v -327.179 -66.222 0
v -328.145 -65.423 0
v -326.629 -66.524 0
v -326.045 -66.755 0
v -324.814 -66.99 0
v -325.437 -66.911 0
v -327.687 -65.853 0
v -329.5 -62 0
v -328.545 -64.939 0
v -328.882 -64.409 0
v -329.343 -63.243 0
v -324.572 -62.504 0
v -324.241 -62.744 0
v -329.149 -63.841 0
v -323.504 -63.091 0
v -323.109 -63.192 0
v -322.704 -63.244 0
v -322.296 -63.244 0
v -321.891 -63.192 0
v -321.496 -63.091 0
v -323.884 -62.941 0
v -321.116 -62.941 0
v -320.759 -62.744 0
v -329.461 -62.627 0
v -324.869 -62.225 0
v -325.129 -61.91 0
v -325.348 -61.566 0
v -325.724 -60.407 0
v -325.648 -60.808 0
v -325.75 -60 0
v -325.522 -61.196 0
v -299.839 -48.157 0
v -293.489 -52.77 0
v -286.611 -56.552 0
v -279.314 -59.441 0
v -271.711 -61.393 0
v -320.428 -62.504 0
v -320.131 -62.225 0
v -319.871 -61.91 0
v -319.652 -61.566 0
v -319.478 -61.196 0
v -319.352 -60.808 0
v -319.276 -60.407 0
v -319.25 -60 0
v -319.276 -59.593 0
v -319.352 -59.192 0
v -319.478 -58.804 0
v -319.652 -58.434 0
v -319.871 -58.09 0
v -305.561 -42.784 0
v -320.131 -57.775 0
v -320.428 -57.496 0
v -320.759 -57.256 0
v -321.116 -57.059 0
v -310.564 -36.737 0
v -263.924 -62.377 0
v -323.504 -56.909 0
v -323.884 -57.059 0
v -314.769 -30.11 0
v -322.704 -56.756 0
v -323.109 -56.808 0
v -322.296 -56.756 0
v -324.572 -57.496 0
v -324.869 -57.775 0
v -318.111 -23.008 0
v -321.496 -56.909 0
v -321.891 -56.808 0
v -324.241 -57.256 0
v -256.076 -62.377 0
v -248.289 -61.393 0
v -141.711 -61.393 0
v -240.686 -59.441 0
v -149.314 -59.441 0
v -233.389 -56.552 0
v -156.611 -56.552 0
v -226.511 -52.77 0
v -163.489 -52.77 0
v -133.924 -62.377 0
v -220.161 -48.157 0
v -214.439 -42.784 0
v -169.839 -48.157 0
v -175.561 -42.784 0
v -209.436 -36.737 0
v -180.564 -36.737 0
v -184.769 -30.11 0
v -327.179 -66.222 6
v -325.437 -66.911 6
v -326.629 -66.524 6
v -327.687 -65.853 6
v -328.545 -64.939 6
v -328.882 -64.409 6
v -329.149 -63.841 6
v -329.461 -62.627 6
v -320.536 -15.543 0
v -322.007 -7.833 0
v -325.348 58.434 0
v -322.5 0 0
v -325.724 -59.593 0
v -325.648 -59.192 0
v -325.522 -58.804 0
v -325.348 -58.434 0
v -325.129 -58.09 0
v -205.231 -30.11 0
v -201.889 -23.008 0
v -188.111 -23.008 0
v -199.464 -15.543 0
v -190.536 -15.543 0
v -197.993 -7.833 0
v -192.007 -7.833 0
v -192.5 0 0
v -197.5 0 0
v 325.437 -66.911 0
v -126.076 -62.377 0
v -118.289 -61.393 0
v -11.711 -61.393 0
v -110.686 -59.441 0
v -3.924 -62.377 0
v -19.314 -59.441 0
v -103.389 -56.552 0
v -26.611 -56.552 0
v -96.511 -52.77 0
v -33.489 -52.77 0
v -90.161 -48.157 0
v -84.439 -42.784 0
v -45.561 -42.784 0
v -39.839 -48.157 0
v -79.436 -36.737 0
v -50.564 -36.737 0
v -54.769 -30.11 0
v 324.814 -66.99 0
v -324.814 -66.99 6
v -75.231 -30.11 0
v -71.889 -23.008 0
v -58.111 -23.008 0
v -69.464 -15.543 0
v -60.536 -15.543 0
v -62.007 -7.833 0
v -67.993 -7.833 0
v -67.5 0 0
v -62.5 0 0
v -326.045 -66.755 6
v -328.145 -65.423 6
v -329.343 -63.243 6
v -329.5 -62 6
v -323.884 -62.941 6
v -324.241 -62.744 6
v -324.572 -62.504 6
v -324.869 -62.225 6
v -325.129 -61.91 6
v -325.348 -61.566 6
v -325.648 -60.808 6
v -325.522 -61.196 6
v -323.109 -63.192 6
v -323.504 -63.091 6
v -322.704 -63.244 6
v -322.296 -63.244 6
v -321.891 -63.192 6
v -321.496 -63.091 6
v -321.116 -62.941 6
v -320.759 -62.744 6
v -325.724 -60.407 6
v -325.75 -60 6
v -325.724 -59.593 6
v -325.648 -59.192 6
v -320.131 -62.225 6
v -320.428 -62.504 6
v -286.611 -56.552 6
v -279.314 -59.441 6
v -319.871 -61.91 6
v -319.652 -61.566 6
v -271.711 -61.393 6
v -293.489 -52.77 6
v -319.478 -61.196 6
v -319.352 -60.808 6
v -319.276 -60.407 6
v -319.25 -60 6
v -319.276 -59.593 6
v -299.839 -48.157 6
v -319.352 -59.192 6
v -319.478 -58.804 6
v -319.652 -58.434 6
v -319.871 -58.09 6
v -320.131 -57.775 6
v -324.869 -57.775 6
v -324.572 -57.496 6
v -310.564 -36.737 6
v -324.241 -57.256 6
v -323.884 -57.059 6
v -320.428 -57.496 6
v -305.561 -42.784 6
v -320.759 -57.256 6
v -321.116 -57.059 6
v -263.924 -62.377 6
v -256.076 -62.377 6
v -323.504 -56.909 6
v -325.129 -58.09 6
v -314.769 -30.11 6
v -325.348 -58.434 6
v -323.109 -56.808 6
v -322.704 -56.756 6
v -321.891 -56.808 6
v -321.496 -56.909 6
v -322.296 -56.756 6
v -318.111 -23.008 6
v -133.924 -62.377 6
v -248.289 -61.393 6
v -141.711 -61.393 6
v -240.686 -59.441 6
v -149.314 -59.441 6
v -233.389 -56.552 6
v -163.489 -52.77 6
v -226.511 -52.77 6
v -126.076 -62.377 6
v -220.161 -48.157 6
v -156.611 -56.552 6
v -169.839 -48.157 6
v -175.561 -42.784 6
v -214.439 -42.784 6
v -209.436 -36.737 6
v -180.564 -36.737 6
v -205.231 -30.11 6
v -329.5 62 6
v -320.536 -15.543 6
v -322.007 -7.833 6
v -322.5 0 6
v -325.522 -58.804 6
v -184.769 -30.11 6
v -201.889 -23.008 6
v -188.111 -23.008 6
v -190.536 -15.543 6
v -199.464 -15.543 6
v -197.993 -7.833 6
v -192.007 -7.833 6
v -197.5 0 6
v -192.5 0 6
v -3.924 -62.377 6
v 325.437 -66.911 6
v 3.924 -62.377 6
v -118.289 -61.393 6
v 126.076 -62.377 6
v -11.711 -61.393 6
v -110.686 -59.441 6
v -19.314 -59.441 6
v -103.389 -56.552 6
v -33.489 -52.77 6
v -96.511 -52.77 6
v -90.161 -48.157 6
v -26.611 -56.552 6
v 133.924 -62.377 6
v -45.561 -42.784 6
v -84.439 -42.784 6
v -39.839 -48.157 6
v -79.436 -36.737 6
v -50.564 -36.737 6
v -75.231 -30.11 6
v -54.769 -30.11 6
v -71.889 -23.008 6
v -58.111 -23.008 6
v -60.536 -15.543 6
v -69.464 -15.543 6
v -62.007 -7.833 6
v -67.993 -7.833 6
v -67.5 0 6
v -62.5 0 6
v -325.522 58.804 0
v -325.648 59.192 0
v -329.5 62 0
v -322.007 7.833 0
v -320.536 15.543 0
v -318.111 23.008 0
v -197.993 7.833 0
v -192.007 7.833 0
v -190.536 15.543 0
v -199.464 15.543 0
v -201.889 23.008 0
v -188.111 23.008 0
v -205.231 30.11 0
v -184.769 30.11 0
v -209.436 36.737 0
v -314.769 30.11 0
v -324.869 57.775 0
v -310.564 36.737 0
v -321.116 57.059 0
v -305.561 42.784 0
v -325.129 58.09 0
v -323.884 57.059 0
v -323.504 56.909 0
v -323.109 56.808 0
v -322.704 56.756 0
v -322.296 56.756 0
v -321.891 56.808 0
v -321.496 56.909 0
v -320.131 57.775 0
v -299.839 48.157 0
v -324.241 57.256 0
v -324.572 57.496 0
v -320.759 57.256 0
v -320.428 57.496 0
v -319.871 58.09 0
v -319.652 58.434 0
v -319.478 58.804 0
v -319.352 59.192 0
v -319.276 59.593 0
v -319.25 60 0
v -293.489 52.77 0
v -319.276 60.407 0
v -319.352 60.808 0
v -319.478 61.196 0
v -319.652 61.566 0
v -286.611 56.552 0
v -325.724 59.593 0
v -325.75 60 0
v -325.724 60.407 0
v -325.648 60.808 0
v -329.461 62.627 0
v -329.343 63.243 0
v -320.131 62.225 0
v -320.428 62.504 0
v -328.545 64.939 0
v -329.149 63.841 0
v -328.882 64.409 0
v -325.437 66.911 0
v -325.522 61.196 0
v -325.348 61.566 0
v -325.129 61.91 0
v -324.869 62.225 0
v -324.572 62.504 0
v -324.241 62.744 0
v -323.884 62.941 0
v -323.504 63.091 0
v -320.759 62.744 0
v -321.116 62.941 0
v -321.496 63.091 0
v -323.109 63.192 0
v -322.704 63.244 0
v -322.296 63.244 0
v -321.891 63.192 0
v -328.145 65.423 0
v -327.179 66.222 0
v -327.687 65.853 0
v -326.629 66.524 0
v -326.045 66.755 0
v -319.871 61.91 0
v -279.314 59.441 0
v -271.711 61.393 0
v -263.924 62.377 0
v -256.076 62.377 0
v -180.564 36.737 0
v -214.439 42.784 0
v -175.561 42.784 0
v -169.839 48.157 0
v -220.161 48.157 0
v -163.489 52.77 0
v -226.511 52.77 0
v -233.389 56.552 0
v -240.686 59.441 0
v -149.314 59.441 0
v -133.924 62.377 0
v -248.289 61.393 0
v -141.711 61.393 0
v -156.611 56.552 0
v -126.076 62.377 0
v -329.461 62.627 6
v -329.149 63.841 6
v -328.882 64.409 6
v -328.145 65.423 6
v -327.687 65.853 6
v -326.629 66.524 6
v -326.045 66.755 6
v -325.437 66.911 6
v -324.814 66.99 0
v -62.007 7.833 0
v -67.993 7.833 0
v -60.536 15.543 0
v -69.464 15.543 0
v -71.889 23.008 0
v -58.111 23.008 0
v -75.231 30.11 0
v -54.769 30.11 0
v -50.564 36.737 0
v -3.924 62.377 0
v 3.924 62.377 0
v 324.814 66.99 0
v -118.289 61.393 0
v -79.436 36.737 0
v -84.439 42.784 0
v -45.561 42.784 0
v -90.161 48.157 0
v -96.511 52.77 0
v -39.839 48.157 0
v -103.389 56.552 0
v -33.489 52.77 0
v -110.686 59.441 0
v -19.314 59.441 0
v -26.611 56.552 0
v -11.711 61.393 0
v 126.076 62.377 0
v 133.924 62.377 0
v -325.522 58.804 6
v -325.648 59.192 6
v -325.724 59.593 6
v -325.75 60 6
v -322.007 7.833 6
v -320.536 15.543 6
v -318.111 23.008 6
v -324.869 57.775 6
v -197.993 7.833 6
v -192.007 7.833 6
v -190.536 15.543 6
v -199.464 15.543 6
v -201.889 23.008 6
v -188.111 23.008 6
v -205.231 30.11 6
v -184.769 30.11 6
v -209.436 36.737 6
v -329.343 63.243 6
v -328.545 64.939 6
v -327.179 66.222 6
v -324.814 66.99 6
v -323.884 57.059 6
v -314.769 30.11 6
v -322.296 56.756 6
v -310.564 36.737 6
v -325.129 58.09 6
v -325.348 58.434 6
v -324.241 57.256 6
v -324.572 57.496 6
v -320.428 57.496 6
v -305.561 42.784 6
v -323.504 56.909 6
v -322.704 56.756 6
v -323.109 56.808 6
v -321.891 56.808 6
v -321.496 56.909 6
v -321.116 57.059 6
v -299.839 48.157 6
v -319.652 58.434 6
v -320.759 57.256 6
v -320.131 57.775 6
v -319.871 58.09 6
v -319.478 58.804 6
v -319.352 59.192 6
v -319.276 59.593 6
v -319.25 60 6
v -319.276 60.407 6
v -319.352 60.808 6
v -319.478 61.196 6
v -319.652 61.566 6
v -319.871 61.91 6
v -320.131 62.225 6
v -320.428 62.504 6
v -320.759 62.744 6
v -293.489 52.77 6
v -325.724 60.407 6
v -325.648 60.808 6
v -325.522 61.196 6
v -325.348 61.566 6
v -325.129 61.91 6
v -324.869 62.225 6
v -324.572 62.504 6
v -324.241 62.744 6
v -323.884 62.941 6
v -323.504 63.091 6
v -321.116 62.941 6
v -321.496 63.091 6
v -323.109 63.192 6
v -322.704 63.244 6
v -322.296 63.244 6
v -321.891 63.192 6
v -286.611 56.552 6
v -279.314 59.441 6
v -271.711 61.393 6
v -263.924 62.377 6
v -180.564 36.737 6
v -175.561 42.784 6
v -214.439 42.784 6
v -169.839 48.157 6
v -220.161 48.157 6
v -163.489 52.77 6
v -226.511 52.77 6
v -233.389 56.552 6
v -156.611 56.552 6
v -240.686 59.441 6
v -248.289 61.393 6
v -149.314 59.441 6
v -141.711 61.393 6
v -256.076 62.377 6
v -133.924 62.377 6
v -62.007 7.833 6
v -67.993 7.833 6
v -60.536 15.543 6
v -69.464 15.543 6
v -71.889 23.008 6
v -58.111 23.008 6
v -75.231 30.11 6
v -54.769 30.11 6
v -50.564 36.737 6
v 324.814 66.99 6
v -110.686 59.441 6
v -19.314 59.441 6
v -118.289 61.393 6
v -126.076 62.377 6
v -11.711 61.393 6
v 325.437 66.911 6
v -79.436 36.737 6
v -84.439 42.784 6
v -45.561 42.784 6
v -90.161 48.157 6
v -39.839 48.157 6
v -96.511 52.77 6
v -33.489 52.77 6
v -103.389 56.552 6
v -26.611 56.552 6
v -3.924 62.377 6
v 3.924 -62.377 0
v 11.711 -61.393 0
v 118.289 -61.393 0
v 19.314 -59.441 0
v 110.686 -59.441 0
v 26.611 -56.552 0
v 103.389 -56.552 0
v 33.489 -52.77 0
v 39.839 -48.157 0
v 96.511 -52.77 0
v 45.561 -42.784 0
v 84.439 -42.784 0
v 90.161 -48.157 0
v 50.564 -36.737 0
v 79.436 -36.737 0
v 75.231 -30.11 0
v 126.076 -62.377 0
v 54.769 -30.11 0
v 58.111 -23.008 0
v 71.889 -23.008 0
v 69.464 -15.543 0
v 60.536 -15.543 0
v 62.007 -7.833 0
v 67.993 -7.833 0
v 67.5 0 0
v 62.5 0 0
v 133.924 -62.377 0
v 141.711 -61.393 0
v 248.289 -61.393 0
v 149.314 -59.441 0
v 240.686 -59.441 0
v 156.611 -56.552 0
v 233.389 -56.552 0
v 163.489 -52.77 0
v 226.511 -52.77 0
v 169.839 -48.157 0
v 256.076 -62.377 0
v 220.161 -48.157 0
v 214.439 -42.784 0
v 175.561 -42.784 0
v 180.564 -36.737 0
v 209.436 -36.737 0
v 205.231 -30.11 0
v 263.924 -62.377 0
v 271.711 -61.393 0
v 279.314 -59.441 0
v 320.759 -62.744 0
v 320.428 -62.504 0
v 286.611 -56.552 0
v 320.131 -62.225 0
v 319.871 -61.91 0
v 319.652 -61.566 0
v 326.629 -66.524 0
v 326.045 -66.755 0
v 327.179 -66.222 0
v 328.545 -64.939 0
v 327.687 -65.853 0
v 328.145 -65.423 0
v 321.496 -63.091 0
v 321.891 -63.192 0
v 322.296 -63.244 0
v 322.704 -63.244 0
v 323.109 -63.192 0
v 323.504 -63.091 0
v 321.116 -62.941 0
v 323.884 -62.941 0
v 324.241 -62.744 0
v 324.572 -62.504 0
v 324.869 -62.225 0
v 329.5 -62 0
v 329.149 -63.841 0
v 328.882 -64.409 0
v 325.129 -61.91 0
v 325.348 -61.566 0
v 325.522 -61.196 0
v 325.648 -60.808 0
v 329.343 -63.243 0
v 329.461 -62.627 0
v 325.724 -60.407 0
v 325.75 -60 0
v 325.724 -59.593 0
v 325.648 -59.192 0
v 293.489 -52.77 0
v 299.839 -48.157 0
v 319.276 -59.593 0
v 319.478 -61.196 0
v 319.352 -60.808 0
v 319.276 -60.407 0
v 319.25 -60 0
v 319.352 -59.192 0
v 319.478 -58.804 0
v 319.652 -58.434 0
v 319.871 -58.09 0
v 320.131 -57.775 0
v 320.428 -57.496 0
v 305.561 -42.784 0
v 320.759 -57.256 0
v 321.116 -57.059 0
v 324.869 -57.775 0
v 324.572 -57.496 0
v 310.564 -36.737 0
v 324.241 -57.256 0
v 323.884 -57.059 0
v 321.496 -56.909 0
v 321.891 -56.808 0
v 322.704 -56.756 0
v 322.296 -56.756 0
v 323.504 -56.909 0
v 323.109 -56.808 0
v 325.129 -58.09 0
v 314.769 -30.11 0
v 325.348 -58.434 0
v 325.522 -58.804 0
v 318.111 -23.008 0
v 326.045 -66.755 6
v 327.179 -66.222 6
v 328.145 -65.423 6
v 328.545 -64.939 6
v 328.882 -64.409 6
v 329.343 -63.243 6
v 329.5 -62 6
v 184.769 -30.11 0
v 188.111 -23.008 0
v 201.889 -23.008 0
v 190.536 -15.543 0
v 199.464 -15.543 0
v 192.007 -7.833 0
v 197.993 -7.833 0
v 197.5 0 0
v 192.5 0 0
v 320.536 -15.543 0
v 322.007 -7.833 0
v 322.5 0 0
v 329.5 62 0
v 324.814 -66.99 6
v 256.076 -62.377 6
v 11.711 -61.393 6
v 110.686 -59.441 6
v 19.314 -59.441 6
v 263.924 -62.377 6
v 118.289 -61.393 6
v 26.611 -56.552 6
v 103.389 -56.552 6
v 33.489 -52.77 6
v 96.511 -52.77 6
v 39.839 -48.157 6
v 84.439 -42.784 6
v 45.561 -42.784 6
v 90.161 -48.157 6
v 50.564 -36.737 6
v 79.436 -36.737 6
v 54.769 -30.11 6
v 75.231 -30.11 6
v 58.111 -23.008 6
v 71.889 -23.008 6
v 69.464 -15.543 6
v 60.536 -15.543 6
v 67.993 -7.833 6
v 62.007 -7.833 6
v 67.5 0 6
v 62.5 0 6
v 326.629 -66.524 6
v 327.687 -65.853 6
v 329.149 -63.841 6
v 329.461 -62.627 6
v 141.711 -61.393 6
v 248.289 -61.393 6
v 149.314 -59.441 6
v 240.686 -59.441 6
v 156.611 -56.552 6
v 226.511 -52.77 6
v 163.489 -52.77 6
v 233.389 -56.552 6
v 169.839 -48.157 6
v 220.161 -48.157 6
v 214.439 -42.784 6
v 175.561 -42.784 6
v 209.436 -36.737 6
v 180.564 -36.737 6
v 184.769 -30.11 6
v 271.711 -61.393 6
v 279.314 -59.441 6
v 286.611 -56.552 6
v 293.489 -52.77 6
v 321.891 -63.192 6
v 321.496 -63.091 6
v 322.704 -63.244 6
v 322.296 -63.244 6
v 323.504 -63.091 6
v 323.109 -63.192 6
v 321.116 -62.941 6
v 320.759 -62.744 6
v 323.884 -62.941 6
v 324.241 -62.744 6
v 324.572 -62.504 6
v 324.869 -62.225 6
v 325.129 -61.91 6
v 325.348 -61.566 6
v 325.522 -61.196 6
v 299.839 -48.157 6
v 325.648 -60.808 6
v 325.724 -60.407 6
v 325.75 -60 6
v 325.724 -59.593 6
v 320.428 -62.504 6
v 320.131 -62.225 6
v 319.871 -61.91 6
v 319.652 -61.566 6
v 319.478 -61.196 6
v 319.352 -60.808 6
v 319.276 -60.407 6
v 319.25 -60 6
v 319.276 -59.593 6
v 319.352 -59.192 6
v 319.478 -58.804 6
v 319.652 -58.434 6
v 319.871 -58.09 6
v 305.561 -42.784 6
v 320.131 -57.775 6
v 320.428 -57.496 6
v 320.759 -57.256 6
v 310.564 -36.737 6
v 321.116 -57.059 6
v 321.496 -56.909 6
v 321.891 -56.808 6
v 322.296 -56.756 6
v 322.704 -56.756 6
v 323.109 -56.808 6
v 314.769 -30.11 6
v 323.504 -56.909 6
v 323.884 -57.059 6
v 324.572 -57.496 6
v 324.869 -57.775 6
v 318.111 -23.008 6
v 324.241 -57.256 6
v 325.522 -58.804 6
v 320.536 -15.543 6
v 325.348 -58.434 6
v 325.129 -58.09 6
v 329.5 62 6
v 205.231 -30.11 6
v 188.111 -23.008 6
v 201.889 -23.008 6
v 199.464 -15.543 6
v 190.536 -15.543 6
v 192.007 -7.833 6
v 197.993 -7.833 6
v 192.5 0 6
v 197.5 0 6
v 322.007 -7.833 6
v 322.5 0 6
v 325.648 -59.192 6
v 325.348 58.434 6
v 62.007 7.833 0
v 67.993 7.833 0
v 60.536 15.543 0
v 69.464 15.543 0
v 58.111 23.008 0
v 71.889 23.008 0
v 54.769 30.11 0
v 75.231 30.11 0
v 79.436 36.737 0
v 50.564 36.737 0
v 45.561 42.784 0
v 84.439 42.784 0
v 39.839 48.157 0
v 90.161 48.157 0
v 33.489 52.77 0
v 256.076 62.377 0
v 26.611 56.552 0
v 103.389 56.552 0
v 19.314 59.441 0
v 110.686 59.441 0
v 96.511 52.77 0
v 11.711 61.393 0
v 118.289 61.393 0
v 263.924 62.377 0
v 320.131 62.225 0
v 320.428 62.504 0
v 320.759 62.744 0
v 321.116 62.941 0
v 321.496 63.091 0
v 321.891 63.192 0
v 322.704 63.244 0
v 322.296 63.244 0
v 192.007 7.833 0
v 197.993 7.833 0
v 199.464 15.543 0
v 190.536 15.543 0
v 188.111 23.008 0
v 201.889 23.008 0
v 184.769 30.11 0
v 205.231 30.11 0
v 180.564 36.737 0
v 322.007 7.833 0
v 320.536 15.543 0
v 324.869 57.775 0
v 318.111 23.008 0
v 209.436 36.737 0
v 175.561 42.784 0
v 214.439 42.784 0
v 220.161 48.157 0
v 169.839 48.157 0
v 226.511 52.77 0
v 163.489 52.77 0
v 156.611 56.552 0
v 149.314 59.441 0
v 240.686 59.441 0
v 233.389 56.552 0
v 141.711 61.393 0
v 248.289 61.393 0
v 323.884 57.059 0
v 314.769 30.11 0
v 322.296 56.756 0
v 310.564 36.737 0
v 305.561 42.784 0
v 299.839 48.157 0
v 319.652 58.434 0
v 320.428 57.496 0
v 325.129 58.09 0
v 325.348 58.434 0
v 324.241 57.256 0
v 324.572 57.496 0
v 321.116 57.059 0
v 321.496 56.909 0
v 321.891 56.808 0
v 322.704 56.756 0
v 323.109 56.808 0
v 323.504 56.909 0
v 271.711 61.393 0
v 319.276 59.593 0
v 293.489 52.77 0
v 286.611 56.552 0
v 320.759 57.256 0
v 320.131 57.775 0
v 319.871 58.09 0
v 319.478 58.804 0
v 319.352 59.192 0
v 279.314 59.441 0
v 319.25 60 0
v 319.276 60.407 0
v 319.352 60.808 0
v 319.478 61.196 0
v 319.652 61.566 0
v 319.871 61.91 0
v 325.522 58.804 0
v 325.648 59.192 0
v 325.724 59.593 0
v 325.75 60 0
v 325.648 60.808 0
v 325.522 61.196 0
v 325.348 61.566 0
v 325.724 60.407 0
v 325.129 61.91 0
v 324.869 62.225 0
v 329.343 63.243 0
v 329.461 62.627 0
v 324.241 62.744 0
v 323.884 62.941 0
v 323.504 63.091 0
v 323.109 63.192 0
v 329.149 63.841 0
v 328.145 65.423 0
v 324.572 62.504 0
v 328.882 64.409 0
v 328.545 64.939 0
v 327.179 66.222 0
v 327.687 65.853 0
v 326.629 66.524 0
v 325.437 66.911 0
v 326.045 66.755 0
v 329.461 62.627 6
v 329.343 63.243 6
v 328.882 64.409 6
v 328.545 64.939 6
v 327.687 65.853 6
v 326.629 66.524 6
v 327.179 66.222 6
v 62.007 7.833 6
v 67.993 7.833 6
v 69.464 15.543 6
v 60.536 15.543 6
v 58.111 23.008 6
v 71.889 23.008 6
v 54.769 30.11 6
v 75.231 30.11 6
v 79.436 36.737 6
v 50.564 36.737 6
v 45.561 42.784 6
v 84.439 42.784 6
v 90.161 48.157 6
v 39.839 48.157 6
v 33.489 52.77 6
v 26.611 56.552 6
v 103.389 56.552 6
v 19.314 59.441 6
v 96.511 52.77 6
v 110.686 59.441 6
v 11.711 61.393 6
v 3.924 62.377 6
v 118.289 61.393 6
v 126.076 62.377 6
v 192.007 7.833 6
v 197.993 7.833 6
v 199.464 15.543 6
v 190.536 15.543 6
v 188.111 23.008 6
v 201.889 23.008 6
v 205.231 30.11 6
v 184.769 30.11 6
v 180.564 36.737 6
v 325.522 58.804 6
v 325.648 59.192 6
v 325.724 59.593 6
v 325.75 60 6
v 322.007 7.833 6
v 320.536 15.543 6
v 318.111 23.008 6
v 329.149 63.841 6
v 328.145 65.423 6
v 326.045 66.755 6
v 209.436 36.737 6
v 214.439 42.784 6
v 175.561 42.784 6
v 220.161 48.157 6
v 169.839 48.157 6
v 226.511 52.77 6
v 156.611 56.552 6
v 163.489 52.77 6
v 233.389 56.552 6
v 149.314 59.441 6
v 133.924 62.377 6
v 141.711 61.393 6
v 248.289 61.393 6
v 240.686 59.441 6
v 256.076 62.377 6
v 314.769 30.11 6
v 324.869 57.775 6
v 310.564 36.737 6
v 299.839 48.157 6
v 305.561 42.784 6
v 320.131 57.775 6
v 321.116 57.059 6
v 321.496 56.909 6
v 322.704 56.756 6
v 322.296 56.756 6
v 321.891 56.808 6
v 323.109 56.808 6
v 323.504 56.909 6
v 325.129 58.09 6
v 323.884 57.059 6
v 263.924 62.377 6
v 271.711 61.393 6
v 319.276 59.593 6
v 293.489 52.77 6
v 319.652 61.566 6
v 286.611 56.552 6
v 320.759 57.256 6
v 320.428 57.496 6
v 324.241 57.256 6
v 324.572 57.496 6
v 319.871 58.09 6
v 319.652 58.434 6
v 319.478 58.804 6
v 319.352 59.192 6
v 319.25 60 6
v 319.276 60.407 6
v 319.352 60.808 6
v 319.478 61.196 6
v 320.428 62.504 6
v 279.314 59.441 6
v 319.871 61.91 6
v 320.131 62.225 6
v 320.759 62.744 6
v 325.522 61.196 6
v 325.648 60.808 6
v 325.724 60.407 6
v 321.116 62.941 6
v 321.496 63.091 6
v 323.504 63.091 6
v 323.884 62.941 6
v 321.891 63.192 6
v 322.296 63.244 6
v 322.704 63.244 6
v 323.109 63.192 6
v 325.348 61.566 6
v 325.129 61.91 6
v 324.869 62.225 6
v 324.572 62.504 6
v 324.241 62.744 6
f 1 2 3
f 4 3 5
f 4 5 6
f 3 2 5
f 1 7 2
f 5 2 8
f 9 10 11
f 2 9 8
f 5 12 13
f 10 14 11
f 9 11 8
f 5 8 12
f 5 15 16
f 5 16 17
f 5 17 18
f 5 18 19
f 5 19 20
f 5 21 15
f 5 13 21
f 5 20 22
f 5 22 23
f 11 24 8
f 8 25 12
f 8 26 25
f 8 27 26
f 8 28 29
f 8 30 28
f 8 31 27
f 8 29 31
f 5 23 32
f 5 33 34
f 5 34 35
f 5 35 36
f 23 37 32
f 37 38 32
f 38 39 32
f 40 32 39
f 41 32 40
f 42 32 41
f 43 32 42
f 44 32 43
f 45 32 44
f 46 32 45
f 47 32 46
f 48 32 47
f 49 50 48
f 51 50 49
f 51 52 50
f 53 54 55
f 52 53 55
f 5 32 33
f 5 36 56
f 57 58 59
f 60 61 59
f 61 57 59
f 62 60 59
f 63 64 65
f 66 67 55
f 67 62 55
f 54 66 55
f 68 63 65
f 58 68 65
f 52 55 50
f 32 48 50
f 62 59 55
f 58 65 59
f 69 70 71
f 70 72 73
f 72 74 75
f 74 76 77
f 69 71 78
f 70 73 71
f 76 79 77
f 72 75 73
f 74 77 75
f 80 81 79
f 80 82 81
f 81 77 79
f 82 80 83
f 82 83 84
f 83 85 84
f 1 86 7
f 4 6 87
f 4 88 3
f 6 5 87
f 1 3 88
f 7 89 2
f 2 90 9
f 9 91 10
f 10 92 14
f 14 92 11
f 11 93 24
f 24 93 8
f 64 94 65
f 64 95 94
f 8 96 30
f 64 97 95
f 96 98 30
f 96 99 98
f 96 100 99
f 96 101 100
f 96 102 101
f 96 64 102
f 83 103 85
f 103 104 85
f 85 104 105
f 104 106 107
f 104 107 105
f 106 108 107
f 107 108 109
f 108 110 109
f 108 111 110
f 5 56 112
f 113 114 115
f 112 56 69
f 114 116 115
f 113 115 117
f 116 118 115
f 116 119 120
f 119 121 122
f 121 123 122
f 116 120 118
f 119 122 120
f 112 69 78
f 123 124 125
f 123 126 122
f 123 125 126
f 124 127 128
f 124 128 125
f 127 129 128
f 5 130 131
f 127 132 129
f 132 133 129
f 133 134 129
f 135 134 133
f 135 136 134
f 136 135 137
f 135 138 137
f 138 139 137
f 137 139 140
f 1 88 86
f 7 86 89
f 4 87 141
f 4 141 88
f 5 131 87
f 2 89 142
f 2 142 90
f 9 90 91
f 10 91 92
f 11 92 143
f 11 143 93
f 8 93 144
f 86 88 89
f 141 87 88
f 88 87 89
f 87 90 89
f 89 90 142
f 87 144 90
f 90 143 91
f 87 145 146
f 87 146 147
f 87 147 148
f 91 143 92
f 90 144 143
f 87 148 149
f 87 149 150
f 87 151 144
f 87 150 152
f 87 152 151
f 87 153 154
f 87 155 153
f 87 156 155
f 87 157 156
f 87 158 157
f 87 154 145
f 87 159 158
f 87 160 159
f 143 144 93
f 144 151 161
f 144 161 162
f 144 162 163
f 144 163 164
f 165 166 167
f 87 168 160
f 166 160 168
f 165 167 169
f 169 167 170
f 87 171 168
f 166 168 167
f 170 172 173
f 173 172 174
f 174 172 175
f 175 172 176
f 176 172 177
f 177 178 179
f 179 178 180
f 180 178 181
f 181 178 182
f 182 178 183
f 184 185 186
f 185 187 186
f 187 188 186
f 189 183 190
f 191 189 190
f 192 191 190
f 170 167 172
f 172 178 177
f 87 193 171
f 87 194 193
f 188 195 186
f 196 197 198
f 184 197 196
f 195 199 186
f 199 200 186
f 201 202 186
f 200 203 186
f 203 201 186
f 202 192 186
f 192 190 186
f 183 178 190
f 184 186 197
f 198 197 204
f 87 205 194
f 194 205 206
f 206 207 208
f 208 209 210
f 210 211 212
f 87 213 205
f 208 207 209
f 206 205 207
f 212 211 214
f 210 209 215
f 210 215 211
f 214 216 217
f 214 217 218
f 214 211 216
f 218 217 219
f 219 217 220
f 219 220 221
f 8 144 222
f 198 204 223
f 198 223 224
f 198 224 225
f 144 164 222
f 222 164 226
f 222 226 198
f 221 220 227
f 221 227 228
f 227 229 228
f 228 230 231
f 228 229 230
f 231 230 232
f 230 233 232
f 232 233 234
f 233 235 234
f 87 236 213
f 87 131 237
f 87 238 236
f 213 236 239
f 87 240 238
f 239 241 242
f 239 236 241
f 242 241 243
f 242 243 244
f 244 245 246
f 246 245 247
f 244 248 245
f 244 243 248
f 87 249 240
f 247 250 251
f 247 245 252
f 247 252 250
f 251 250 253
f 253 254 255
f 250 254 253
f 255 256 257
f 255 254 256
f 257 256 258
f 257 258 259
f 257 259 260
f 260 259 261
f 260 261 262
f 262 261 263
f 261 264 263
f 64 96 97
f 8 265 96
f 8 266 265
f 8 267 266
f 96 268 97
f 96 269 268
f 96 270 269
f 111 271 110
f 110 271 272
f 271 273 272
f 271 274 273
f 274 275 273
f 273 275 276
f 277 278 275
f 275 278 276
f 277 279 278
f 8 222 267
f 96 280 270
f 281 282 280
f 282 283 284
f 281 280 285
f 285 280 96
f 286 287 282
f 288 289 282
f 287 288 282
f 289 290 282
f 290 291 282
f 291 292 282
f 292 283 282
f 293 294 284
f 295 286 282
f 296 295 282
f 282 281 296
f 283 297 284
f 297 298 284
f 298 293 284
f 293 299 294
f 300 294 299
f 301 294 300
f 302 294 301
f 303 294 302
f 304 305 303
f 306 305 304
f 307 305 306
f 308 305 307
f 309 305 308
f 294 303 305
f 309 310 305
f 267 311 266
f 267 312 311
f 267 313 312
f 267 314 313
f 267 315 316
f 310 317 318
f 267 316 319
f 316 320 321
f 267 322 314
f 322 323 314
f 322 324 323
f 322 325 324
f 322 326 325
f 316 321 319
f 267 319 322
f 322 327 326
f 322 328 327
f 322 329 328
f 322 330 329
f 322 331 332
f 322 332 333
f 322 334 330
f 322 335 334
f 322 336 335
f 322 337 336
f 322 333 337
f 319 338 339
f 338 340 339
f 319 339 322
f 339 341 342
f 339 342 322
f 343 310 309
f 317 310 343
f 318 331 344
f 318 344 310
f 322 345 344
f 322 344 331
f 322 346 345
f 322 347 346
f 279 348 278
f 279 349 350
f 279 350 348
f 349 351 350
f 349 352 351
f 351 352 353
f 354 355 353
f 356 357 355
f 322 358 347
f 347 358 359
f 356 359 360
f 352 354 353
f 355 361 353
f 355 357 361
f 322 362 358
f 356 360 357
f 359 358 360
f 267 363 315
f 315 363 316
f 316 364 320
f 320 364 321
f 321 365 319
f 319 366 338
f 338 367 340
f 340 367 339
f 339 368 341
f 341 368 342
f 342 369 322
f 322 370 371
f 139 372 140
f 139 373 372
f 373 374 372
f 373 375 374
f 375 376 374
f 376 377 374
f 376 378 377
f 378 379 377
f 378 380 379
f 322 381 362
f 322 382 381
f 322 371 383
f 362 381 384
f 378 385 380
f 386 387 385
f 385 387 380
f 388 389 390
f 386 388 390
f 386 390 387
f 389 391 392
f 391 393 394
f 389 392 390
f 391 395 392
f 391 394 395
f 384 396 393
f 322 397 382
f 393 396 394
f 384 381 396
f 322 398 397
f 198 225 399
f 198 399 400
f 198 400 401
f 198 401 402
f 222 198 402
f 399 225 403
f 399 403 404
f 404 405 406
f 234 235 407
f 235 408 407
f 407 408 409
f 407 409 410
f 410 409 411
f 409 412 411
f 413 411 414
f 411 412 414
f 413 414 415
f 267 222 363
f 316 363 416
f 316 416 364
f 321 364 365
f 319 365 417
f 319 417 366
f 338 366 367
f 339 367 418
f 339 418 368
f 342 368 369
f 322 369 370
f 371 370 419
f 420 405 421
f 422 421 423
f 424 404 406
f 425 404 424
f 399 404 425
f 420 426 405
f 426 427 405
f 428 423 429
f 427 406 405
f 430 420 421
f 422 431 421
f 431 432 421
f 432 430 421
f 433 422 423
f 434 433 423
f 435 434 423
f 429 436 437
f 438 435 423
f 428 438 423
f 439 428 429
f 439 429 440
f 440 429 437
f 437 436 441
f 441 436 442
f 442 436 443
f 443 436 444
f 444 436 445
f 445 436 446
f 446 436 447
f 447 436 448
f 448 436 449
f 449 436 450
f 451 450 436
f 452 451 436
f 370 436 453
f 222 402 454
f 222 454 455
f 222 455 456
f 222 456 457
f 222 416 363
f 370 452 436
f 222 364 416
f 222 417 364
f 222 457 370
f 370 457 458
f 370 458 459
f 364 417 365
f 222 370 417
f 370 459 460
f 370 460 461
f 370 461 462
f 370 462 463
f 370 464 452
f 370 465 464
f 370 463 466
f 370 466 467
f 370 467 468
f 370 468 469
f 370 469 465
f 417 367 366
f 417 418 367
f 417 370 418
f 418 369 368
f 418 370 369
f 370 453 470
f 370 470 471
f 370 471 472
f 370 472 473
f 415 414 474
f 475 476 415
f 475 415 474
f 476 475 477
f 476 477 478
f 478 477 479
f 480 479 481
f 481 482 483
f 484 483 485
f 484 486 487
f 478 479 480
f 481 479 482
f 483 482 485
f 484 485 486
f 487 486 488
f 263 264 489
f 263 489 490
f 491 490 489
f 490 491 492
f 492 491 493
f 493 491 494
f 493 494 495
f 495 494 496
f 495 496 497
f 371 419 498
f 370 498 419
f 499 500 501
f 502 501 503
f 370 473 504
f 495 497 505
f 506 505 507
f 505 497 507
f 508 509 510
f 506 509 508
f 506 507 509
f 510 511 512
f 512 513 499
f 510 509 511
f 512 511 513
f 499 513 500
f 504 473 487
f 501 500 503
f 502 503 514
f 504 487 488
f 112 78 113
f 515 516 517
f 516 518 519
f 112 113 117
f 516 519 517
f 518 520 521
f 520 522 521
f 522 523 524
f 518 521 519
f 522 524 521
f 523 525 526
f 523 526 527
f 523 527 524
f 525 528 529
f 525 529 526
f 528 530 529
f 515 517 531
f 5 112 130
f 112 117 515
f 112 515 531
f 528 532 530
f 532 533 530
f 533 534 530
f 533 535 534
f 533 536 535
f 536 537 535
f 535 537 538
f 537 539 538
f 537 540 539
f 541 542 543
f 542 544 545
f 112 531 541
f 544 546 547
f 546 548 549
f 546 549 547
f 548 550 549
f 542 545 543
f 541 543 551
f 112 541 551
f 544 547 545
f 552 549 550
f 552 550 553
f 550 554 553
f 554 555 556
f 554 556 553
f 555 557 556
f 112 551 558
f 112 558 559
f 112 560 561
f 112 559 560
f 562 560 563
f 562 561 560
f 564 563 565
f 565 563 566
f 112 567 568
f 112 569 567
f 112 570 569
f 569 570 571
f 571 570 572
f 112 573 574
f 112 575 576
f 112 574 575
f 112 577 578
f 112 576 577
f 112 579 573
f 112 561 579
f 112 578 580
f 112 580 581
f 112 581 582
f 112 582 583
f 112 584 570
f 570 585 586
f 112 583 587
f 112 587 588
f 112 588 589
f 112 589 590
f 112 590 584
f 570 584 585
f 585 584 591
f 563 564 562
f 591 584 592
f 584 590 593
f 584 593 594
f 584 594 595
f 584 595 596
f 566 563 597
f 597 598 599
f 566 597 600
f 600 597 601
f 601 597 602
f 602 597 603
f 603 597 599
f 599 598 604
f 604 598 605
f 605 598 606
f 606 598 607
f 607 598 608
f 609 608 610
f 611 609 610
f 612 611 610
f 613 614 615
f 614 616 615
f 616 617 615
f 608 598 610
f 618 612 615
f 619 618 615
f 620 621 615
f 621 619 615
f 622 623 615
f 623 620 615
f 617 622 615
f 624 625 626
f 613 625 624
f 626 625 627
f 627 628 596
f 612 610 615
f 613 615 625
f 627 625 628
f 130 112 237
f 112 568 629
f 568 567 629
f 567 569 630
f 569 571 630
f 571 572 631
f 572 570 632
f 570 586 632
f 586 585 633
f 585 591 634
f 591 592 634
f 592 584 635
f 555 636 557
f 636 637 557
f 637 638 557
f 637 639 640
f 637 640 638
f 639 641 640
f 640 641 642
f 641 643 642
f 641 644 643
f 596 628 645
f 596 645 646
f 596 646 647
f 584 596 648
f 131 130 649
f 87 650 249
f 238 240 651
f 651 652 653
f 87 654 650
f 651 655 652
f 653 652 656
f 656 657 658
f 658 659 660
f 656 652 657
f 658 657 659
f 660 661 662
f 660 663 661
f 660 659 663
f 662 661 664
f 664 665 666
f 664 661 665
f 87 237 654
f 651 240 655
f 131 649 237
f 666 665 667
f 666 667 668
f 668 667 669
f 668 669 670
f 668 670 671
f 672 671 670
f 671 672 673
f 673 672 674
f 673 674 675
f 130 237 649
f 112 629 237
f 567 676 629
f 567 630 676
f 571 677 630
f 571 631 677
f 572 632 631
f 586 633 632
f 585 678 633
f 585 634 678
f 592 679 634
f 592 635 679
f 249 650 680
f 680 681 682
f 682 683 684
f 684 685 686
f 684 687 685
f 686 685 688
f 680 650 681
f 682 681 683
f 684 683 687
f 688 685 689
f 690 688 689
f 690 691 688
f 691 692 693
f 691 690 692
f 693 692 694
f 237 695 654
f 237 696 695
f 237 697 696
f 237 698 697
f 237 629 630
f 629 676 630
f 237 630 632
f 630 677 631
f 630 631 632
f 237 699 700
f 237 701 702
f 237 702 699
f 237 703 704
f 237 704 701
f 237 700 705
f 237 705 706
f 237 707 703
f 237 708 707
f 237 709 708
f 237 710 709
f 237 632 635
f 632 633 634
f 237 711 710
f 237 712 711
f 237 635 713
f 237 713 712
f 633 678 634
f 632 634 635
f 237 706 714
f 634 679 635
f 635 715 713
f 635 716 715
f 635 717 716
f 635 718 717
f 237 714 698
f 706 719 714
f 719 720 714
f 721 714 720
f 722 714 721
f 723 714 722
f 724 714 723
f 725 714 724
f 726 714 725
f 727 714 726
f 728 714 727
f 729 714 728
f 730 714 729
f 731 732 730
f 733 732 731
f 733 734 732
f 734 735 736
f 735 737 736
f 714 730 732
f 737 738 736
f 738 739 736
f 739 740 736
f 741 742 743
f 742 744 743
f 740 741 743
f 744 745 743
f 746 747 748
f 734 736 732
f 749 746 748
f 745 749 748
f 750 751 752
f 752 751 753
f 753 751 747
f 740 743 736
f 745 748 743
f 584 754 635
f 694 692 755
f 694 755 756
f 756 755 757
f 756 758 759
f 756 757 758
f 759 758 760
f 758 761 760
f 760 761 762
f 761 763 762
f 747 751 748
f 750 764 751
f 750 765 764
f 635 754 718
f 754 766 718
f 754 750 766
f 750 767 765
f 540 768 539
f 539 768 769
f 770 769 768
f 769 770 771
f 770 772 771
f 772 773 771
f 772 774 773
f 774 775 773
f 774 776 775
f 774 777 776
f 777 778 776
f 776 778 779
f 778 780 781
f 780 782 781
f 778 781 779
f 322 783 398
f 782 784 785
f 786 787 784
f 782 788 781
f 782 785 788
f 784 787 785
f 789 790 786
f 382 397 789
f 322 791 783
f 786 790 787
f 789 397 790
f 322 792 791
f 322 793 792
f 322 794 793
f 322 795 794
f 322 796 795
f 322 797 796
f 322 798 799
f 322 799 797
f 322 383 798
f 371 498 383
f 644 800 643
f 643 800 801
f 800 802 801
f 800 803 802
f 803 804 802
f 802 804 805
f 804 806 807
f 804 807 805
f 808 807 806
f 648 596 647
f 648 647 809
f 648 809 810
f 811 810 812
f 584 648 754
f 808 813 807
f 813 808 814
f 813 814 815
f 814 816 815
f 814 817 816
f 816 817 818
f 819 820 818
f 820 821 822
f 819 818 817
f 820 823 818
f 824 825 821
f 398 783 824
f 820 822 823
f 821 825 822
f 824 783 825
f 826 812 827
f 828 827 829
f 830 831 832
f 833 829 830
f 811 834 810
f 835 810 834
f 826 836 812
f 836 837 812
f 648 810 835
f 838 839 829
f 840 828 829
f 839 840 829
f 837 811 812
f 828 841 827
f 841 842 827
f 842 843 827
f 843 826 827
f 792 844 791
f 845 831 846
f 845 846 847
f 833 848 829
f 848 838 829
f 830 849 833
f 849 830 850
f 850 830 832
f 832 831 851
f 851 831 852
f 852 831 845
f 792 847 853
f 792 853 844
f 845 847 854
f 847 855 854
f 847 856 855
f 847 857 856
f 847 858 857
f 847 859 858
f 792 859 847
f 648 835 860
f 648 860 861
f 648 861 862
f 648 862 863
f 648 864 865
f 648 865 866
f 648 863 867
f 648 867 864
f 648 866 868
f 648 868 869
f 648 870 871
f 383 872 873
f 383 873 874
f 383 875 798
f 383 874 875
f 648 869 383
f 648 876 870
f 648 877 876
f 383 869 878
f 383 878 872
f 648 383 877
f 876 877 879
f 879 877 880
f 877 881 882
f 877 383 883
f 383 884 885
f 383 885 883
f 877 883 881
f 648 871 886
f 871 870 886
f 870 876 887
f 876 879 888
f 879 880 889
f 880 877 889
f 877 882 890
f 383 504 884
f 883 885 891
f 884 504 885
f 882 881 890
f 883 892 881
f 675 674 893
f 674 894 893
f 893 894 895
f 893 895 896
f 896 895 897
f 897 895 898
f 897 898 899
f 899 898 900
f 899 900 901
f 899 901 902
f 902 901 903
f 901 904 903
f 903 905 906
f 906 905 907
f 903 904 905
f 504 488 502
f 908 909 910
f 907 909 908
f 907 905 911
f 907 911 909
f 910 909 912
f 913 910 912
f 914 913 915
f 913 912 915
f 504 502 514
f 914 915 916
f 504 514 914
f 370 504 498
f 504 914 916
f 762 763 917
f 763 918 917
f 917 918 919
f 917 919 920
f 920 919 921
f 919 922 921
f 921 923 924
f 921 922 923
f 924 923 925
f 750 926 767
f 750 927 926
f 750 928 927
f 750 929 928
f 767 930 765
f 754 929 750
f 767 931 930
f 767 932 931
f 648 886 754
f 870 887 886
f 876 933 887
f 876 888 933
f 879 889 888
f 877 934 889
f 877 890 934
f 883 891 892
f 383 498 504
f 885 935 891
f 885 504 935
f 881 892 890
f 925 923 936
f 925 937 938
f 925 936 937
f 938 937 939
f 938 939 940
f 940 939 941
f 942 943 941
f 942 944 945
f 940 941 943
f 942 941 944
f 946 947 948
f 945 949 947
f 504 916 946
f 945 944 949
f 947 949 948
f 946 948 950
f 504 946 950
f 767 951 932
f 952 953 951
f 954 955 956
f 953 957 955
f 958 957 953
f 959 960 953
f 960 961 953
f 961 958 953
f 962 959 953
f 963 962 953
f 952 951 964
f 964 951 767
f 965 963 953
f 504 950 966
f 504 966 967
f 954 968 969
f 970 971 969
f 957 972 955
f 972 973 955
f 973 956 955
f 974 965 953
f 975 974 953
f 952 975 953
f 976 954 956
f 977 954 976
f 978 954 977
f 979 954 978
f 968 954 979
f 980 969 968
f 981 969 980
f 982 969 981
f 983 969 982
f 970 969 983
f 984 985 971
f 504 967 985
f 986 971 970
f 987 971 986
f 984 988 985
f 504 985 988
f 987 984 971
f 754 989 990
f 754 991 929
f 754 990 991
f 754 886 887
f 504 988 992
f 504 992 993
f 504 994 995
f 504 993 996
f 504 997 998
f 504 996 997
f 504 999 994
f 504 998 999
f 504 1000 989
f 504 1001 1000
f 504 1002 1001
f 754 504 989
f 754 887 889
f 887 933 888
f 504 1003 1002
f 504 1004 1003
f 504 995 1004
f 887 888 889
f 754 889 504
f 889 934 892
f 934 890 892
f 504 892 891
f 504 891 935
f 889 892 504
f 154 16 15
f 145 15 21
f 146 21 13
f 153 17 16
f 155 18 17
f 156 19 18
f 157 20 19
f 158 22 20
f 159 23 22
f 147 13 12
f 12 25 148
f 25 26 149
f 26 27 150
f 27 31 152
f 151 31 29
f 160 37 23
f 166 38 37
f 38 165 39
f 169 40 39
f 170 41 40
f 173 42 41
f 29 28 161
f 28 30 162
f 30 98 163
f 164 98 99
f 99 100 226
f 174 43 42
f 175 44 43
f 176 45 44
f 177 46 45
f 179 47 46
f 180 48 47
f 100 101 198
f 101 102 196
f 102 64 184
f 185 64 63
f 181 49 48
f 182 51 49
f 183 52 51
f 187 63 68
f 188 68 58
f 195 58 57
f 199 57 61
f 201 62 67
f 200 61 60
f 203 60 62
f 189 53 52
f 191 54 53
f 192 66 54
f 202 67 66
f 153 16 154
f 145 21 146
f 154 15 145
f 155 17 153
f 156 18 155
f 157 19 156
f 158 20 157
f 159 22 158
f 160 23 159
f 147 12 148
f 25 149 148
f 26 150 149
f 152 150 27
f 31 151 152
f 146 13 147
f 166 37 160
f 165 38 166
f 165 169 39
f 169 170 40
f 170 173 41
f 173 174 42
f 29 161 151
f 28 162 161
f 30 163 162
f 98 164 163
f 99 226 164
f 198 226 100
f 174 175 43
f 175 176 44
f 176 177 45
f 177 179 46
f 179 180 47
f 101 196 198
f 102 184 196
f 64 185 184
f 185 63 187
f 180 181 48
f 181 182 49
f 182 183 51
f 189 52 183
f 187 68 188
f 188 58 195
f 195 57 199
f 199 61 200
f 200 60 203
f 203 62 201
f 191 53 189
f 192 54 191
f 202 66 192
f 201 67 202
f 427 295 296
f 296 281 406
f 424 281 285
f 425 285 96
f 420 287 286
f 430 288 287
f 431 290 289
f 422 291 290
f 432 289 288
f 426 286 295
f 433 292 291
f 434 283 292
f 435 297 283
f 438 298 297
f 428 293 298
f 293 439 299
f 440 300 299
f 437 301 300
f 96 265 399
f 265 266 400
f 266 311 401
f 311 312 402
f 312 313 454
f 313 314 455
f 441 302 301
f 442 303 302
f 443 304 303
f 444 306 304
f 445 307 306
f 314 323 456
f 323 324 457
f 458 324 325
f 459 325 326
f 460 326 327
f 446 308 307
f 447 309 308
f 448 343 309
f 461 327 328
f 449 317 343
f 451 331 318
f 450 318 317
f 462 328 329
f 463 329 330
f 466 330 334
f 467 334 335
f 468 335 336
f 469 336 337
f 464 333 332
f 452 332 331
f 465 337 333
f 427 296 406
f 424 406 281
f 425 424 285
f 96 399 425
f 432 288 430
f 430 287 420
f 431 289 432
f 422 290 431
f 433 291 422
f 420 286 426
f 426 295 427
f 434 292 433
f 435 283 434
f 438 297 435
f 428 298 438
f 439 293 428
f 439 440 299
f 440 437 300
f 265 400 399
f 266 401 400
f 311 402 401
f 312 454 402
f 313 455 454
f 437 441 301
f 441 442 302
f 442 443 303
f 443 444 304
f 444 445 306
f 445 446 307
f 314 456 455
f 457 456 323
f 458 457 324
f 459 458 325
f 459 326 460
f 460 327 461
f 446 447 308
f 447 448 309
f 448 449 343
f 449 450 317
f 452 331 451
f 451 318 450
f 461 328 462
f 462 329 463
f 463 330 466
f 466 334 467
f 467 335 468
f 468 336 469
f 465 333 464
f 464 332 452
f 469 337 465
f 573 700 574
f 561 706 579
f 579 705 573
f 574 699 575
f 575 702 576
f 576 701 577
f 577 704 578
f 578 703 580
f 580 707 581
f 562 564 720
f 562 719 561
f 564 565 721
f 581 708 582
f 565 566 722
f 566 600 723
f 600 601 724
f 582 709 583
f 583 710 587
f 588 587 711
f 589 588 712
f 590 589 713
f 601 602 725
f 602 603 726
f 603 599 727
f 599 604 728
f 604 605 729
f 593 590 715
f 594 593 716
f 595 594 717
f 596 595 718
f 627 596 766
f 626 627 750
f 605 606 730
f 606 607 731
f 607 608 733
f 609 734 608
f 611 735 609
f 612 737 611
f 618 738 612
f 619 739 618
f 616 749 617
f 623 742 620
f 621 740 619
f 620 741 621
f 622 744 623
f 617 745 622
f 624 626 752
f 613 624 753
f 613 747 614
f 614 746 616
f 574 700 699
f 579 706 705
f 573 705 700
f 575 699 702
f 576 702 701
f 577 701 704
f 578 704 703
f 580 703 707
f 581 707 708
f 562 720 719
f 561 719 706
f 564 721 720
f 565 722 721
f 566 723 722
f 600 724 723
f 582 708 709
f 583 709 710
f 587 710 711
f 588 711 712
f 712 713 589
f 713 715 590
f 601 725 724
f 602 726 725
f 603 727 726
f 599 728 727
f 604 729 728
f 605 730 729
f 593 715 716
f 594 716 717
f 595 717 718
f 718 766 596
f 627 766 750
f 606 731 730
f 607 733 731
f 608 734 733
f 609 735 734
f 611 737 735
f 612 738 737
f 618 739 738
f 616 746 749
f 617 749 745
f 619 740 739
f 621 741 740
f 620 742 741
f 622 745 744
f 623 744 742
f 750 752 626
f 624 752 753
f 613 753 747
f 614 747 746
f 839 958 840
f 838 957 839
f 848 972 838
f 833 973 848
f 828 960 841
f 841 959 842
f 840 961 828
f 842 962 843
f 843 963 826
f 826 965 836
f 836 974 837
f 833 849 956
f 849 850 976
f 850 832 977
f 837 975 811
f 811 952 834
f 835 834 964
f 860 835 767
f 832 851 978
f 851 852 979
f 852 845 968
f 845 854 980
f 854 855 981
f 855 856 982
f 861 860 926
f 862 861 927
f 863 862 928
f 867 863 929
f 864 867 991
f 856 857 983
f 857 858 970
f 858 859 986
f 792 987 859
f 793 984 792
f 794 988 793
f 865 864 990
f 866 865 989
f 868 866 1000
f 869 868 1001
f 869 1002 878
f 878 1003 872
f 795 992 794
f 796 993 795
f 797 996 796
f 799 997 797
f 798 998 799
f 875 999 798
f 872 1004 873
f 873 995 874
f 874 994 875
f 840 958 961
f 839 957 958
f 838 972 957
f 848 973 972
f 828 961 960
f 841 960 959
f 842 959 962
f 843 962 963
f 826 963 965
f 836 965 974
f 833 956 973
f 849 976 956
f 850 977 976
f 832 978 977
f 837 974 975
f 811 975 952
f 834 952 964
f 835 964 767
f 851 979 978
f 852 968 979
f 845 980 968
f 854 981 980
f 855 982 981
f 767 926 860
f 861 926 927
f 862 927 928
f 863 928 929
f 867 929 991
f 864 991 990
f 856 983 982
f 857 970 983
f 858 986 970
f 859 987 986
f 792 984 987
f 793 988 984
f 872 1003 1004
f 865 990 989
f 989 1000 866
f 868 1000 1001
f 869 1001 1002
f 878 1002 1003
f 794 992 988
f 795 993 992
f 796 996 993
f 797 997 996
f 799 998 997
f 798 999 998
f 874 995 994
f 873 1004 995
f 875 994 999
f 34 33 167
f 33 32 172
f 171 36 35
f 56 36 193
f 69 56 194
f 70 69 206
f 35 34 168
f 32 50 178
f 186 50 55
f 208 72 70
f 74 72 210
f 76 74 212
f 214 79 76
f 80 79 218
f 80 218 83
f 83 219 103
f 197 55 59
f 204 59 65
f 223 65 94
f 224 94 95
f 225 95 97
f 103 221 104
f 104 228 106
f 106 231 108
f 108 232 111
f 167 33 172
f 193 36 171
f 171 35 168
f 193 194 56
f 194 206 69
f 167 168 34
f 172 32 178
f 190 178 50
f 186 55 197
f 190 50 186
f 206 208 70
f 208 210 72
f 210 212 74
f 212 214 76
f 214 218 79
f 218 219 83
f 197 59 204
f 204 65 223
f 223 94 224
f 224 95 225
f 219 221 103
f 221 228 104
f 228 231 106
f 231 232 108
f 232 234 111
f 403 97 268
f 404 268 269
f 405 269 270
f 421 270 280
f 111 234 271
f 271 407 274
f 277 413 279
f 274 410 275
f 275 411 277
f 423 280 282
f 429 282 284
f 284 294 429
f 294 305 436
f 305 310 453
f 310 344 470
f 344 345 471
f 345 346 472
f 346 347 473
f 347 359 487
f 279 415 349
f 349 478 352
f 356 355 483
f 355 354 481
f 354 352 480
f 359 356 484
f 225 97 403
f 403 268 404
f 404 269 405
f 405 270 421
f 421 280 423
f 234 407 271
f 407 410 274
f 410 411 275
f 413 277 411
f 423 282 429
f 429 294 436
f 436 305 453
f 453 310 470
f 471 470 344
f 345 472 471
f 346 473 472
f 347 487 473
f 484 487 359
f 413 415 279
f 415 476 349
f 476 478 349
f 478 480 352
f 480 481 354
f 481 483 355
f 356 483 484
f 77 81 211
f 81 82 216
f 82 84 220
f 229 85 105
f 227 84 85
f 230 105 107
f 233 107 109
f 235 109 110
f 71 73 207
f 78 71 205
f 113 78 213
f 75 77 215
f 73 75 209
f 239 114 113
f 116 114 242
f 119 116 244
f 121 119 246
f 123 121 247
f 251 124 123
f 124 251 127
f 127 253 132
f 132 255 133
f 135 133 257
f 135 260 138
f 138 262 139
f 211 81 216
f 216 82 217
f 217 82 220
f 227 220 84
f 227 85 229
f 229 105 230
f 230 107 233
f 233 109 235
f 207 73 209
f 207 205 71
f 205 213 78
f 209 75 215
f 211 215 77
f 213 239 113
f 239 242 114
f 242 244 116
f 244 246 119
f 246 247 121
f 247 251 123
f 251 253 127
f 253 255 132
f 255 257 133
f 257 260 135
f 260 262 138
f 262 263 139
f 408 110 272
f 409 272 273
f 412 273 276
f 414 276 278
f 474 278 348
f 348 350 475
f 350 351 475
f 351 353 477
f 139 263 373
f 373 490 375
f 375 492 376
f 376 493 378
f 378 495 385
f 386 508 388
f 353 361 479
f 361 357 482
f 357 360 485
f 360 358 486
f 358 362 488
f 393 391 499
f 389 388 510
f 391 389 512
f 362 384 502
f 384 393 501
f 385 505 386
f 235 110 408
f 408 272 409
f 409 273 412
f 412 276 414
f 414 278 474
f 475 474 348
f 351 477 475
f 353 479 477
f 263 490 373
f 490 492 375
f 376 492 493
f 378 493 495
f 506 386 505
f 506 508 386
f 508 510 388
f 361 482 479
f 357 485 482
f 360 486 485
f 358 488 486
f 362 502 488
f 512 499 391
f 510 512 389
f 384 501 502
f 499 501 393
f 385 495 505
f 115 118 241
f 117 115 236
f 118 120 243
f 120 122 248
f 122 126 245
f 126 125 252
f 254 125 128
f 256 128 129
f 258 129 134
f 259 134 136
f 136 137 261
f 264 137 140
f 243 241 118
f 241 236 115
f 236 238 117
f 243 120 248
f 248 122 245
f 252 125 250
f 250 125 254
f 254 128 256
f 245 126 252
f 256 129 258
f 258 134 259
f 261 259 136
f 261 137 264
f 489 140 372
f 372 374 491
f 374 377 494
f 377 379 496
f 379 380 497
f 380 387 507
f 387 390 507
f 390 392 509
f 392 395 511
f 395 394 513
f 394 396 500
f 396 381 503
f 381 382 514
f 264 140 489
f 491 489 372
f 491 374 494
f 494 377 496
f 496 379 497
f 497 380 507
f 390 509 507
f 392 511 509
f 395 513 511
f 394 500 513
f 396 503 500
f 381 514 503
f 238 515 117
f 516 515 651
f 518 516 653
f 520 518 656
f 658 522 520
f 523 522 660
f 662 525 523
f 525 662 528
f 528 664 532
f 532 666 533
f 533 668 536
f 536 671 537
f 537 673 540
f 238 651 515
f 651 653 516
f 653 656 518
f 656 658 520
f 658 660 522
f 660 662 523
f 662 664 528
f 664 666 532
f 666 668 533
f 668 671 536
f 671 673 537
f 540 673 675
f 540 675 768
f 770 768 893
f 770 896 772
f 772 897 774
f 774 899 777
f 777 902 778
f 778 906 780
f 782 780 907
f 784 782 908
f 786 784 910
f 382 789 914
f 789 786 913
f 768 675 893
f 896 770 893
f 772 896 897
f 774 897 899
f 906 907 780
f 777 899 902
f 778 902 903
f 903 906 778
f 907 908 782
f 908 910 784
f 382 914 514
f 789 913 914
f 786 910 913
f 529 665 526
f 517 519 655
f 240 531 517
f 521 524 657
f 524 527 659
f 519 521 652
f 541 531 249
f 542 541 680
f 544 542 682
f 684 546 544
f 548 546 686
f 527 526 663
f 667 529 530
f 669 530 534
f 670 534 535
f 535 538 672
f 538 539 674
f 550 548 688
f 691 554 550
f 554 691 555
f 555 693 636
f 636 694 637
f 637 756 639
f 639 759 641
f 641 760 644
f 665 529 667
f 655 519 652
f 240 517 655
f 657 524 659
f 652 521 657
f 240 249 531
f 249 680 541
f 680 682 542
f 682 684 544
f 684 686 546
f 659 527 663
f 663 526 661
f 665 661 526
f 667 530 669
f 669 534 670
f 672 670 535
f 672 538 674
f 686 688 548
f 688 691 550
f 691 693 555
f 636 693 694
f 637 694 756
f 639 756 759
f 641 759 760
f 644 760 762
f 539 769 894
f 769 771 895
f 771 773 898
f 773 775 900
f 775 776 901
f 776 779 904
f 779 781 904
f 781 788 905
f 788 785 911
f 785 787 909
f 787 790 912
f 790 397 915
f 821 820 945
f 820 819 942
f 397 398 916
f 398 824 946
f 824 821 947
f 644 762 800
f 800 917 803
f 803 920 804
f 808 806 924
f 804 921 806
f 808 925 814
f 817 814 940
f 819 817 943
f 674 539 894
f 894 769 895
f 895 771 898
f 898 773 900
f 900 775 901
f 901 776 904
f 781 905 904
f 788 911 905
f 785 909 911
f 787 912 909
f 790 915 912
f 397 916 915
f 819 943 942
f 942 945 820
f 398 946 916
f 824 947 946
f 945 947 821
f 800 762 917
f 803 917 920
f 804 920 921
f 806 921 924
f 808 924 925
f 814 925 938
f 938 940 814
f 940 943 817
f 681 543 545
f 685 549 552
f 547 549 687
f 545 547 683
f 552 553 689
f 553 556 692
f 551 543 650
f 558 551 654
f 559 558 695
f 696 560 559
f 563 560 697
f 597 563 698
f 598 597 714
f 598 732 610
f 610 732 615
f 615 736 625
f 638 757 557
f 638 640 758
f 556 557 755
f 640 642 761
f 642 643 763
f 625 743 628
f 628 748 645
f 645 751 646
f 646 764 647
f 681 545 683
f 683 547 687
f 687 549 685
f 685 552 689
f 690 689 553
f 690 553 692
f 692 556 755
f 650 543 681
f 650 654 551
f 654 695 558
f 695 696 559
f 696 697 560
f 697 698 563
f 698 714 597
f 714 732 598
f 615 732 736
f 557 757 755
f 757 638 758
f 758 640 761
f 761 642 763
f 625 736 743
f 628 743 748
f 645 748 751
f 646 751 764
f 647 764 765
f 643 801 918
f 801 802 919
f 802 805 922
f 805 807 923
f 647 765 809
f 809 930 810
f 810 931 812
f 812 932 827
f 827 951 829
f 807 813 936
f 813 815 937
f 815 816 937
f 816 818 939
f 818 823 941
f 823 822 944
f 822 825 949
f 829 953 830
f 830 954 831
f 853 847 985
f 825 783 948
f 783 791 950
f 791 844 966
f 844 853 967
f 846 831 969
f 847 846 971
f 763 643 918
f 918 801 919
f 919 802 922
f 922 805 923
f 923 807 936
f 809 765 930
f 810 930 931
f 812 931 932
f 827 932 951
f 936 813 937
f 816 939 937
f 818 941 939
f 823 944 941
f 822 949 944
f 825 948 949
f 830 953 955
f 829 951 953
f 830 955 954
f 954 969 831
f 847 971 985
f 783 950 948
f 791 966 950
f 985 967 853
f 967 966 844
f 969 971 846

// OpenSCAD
$fn = 50;

difference() {
	union() {
		hull() {
			translate(v = [-324.5, 62.0, 0]) {
				cylinder(h = 6, r = 5);
			}
			translate(v = [324.5, 62.0, 0]) {
				cylinder(h = 6, r = 5);
			}
			translate(v = [-324.5, -62.0, 0]) {
				cylinder(h = 6, r = 5);
			}
			translate(v = [324.5, -62.0, 0]) {
				cylinder(h = 6, r = 5);
			}
		}
	}
	union() {
		translate(v = [-322.5, -60.0, -100.0]) {
			cylinder(h = 200, r = 3.25);
		}
		translate(v = [-322.5, 60.0, -100.0]) {
			cylinder(h = 200, r = 3.25);
		}
		translate(v = [322.5, -60.0, -100.0]) {
			cylinder(h = 200, r = 3.25);
		}
		translate(v = [322.5, 60.0, -100.0]) {
			cylinder(h = 200, r = 3.25);
		}
		translate(v = [-322.5, -60.0, -100.0]) {
			cylinder(h = 200, r = 1.8);
		}
		translate(v = [-322.5, 60.0, -100.0]) {
			cylinder(h = 200, r = 1.8);
		}
		translate(v = [322.5, -60.0, -100.0]) {
			cylinder(h = 200, r = 1.8);
		}
		translate(v = [322.5, 60.0, -100.0]) {
			cylinder(h = 200, r = 1.8);
		}
		translate(v = [-260.0, 0, 0.0]) {
			cylinder(h = 6, r = 62.5);
		}
		translate(v = [-130.0, 0, 0.0]) {
			cylinder(h = 6, r = 62.5);
		}
		cylinder(h = 6, r = 62.5);
		translate(v = [130.0, 0, 0.0]) {
			cylinder(h = 6, r = 62.5);
		}
		translate(v = [260.0, 0, 0.0]) {
			cylinder(h = 6, r = 62.5);
		}
	}
}
